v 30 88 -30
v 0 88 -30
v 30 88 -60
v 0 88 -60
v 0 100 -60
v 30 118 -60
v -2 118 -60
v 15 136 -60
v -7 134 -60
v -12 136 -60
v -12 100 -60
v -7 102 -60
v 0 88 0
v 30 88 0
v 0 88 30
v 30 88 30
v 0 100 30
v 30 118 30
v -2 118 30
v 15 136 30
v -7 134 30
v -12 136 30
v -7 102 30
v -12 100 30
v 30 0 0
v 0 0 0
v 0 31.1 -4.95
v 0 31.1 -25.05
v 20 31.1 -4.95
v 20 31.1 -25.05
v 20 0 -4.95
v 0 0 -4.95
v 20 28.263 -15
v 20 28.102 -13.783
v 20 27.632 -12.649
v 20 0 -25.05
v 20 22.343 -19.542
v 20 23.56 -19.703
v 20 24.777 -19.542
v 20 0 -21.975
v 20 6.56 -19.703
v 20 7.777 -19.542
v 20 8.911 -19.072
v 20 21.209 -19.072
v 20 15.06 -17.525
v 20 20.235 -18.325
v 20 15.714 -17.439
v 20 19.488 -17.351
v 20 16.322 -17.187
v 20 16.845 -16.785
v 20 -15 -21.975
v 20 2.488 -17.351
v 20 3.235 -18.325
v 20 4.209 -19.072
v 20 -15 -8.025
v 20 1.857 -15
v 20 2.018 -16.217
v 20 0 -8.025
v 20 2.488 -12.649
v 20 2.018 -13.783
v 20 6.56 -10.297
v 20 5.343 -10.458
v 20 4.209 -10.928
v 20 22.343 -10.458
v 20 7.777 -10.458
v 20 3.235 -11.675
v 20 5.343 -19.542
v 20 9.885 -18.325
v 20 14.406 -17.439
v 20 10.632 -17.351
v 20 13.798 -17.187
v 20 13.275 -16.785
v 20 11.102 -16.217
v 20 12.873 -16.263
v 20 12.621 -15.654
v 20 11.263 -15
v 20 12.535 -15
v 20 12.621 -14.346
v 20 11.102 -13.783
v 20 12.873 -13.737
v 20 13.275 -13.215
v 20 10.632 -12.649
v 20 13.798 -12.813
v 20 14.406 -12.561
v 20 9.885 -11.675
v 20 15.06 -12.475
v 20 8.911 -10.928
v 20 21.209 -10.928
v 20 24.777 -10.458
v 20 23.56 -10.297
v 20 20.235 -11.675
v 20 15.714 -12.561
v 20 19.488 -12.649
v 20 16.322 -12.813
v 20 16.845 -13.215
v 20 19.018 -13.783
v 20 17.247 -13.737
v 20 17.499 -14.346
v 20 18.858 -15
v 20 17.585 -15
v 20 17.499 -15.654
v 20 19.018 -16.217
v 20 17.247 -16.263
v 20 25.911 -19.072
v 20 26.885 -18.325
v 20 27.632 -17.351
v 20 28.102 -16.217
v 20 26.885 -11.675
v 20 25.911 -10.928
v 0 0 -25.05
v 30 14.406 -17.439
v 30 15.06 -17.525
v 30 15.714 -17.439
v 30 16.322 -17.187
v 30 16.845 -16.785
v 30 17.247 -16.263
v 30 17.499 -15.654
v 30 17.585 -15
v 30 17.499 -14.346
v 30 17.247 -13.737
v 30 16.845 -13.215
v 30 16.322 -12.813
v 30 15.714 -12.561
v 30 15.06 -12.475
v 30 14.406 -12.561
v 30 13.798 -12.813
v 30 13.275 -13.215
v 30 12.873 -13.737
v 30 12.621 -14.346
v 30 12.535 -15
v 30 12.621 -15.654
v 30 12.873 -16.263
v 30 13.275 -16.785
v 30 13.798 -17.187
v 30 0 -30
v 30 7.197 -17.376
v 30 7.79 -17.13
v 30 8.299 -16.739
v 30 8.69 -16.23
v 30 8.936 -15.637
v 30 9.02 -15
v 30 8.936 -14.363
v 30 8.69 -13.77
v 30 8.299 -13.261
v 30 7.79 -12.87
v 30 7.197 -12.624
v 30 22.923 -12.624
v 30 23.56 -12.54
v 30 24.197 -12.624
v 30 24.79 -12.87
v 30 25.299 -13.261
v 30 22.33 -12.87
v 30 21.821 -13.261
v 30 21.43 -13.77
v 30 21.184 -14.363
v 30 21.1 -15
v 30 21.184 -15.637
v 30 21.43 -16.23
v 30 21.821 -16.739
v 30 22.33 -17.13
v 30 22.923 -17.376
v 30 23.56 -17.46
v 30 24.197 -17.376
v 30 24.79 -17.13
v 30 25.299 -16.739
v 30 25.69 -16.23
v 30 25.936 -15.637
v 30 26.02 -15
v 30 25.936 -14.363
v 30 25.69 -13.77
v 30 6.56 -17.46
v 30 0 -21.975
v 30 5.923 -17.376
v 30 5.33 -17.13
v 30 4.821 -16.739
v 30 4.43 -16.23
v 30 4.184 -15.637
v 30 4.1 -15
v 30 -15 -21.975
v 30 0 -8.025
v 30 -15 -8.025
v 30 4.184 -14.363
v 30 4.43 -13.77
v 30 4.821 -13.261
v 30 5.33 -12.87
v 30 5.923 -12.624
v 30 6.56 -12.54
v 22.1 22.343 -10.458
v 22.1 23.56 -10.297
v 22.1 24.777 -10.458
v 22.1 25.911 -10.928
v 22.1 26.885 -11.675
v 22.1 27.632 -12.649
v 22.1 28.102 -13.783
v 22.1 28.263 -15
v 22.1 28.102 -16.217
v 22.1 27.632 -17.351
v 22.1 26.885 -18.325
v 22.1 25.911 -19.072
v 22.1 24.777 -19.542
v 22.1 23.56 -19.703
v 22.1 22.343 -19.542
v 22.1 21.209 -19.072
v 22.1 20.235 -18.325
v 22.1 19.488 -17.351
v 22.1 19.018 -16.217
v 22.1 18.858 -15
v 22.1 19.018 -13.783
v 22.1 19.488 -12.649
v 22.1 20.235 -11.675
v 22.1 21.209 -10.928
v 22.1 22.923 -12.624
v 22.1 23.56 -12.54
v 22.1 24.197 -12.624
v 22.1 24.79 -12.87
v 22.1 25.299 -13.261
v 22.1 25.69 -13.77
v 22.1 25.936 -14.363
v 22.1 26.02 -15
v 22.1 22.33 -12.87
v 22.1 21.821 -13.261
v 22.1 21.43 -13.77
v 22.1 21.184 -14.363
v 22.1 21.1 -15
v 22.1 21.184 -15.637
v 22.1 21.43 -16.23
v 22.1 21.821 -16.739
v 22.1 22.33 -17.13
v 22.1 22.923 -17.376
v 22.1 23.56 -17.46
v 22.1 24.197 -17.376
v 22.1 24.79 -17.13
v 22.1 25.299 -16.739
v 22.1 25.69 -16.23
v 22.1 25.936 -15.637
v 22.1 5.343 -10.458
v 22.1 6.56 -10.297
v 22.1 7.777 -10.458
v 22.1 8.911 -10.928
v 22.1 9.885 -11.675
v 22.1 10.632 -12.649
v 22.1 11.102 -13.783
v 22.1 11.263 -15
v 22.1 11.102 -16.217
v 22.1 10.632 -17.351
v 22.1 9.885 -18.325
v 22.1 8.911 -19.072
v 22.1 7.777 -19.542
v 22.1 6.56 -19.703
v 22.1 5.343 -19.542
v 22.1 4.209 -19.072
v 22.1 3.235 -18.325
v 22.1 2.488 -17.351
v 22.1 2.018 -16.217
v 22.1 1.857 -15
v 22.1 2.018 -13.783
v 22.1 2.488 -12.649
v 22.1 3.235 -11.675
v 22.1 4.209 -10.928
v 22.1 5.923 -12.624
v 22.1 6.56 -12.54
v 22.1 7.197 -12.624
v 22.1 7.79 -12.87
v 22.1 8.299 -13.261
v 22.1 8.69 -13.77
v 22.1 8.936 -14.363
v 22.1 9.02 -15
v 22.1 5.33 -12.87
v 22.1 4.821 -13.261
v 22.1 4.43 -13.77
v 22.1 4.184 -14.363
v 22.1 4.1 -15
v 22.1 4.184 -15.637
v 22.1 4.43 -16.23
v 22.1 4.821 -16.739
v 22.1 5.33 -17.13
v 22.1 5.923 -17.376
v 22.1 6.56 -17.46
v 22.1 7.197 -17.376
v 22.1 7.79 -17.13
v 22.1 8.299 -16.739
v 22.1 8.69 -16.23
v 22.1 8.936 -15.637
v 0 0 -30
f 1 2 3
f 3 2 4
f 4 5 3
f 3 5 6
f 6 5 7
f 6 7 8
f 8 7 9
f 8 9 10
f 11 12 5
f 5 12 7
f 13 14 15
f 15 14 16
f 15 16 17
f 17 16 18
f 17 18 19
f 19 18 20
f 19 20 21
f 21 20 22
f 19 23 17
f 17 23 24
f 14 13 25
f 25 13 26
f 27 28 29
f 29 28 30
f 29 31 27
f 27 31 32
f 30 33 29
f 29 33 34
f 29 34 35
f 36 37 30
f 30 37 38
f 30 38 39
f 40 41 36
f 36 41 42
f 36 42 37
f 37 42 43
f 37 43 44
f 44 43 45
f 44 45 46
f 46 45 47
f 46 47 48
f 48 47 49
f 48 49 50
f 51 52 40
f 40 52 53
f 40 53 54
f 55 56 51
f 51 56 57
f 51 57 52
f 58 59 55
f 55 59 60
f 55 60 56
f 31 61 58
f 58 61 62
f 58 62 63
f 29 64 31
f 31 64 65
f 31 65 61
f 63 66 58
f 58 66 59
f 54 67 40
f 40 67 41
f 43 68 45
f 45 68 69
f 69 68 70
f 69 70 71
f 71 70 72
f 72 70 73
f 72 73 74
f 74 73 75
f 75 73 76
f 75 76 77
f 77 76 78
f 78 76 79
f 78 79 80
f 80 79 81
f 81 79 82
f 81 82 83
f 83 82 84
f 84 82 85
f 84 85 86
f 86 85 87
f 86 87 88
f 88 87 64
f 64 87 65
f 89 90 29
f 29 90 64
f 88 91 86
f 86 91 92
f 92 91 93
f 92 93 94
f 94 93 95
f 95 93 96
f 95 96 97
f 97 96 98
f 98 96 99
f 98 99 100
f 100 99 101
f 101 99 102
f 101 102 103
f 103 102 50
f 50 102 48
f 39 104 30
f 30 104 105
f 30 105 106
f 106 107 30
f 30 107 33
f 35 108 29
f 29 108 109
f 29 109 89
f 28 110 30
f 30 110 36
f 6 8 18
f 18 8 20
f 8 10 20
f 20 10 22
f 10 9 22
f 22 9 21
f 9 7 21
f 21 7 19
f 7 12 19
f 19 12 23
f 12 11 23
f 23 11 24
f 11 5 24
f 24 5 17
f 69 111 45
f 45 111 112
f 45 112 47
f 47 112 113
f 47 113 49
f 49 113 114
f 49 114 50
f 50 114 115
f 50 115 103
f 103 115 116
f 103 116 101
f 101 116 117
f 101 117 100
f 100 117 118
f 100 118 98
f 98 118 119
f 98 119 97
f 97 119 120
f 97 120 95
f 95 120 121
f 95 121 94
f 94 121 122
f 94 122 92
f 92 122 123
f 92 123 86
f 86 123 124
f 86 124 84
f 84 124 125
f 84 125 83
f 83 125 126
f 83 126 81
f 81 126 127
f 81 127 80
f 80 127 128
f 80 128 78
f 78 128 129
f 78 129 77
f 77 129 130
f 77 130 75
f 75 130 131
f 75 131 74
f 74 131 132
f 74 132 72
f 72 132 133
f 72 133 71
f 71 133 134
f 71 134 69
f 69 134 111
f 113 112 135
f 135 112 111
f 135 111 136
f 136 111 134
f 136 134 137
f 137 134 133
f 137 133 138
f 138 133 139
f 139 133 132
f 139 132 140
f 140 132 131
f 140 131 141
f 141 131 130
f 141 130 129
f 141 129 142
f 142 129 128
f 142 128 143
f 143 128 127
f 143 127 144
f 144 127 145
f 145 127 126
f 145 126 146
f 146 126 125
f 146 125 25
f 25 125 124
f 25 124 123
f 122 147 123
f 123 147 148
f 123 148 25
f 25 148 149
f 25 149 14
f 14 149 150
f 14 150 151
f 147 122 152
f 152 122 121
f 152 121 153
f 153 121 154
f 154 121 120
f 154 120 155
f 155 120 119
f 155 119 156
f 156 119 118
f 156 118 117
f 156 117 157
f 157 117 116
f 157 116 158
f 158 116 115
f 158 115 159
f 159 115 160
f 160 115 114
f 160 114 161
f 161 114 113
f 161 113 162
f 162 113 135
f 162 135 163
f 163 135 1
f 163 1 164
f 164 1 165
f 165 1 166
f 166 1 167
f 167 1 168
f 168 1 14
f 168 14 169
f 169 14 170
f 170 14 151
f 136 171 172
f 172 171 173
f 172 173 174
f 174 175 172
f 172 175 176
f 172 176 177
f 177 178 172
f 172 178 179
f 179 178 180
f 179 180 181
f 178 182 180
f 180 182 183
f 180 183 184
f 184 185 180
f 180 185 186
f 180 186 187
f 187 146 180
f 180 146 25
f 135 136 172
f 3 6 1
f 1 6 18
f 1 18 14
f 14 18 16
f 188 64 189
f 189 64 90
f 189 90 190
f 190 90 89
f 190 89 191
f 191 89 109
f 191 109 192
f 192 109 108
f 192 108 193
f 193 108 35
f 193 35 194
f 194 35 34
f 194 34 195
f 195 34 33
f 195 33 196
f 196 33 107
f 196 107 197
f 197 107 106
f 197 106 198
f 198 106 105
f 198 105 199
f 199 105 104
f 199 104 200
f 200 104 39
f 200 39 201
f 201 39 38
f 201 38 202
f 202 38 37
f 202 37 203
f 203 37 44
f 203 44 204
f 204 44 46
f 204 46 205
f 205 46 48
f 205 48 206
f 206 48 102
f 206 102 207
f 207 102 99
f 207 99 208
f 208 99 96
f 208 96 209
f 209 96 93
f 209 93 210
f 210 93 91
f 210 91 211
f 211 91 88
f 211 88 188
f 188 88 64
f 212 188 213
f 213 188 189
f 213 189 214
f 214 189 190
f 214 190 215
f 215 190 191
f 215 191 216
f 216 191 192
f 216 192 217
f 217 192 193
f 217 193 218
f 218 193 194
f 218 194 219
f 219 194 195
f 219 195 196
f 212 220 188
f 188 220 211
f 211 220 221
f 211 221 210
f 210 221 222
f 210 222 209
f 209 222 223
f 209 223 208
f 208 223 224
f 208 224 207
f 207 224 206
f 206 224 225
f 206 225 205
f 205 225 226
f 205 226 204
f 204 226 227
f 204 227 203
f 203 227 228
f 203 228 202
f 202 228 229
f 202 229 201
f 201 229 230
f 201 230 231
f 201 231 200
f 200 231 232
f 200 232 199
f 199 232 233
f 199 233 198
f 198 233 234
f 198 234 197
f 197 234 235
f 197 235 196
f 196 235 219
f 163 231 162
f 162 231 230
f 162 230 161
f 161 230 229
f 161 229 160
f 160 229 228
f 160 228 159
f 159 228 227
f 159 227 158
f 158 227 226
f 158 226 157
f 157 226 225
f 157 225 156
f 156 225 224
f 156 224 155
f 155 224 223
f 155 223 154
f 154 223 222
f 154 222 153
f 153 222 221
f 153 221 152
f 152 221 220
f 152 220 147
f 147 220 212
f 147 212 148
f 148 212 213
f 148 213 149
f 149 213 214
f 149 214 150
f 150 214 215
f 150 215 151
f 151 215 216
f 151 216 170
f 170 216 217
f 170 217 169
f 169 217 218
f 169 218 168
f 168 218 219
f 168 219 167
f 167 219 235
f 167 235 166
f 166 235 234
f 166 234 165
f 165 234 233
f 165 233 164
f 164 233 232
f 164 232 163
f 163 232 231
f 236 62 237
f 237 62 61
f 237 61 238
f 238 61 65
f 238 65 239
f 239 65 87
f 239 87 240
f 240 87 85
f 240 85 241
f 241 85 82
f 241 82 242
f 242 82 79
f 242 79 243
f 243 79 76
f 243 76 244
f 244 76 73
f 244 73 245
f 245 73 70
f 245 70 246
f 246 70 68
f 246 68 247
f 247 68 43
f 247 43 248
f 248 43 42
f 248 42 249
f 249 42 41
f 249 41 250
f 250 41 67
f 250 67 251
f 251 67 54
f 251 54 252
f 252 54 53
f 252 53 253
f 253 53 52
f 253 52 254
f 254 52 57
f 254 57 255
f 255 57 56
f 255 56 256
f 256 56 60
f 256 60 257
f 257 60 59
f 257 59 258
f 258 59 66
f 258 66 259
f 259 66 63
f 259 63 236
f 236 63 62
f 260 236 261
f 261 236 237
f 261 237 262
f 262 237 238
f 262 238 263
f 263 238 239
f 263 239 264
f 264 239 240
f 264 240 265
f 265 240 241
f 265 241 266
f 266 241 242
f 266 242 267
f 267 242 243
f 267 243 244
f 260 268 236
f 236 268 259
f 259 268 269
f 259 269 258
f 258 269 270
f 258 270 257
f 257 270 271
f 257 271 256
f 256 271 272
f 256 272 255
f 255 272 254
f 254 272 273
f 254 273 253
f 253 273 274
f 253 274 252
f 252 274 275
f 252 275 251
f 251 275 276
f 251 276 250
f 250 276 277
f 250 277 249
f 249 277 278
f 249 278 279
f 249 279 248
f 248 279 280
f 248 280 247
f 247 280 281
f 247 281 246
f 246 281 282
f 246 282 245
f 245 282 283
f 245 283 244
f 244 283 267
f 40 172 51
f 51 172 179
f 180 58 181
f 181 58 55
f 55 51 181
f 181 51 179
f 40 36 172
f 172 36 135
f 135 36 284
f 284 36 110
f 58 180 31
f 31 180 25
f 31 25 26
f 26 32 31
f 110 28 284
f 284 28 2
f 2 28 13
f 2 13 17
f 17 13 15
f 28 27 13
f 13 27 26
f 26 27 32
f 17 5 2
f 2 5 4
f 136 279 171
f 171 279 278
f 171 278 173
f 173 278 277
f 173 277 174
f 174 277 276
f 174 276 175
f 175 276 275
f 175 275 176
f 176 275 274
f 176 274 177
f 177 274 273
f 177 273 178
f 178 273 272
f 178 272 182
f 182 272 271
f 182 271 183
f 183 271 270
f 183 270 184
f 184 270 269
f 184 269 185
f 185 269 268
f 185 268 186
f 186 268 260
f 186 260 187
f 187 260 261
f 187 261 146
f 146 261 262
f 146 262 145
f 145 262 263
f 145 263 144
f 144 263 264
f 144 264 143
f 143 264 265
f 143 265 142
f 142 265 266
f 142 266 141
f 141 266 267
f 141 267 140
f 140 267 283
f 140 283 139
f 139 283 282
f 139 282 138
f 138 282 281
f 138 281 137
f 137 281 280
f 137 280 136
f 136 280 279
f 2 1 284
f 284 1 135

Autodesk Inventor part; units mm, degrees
ref_plane "YZ Plane" through (0, 0, 0) normal (1, 0, 0) x (0, 1, 0)
ref_plane "XZ Plane" through (0, 0, 0) normal (0, 1, 0) x (-1, 0, 0)
sketch "Sketch1" plane through (0, 0, 0) normal (0, 0, 1) x (1, 0, 0)
  line L0 (0, 0) -> (25, 0)
  line L1 (25, 0) -> (25, 40)
  line L2 (25, 40) -> (0, 40)
  line L3 (0, 40) -> (0, 0)
  dimension "d1" = 25
  dimension "d2" = 40
  dimension "d3" = 25
extrude "Extrusion1" add sketch "Sketch1" against normal blind 30
sketch "Sketch2" plane through (25, 0, 0) normal (1, 0, 0) x (0, 0, -1)
  line L0 (0, 0) -> (30, 0) projected
  circle A0 centre (15, 6.56) radius 2.46
extrude "Extrusion2" cut sketch "Sketch2" against normal blind 30
sketch "Sketch3" plane through (0, 0, 0) normal (-1, 0, 0) x (0, 0, 1)
  line L0 (0, 0) -> (-30, 0) projected
  line L1 (-25.05, 0) -> (-4.95, 0)
  line L2 (-4.95, 0) -> (-4.95, 33.12)
  line L3 (-4.95, 33.12) -> (-25.05, 33.12)
  line L4 (-25.05, 33.12) -> (-25.05, 0)
  dimension "d11" = 20.1
extrude "Extrusion3" cut sketch "Sketch3" against normal blind 20
sketch "Sketch4" plane through (0, 0, 0) normal (0, -1, 0) x (1, 0, 0)
  line L0 (20, -4.95) -> (20, -25.05) projected
  line L1 (20, -15) -> (25, -15)
  line L2 (25, 0) -> (25, -30) projected
  line L3 (20, -8.025) -> (25, -8.025)
  line L4 (25, -8.025) -> (25, -21.975)
  line L5 (25, -21.975) -> (20, -21.975)
  line L6 (20, -21.975) -> (20, -8.025)
  line L7 (20, -8.025) -> (25, -21.975) construction
  line L8 (25, -8.025) -> (20, -21.975) construction
  line L9 (25, -12.54) -> (25, -17.46) projected
  point P0 (0, 0)
  point P1 (22.5, -15)
  dimension "d14" = 13.95
extrude "Extrusion4" add sketch "Sketch4" along normal blind 15
sketch "Sketch5" plane through (20, 0, 0) normal (-1, 0, 0) x (0, 0, 1)
  circle A0 centre (-15, 6.56) radius 2.46 projected
  circle A1 centre (-15, 6.56) radius 4.7025
  circle A2 centre (-15, 6.56) radius 2.46 projected
  circle A3 centre (-15, 6.56) radius 2.46
  point P0 (0, 0)
  dimension "d17" = 9.405
extrude "Extrusion5" cut sketch "Sketch5" against normal blind 2.1
sketch "Sketch6" plane through (25, 0, 0) normal (1, 0, 0) x (0, 0, -1)
  circle A0 centre (15, 6.56) radius 4.7025 projected
  line L0 (15, 6.56) -> (15, 23.56)
  circle A1 centre (15, 23.56) radius 2.46
  point P0 (0, 0)
  dimension "d20" = 17
  dimension "d21" = 4.92
extrude "Extrusion6" cut sketch "Sketch6" against normal blind 10 contours A1
sketch "Sketch7" plane through (20, 0, 0) normal (-1, 0, 0) x (0, 0, 1)
  circle A0 centre (-15, 23.56) radius 2.46 projected
  circle A1 centre (-15, 23.56) radius 4.7025
  point P0 (0, 0)
  dimension "d24" = 9.405
extrude "Extrusion7" cut sketch "Sketch7" against normal blind 2.1
sketch "Sketch9" plane through (25, 0, 0) normal (1, 0, 0) x (0, 0, -1)
  circle A0 centre (15, 6.56) radius 2.46 projected
  circle A1 centre (15, 6.56) radius 2.46
  circle A2 centre (15, 23.56) radius 2.46 projected
  circle A3 centre (15, 23.56) radius 2.46
  line L0 (30, 40) -> (30, 0) projected
  line L1 (30, 0) -> (30, 40)
  line L2 (30, 40) -> (0, 40)
  line L3 (0, 40) -> (0, 0)
  line L4 (0, 0) -> (8.025, 0) projected
  line L5 (21.975, 0) -> (21.975, -15)
  line L6 (21.975, -15) -> (8.025, -15)
  line L7 (8.025, -15) -> (8.025, 0)
  line L8 (0, 0) -> (8.025, 0)
  line L9 (21.975, 0) -> (30, 0)
extrude "Extrusion8" add sketch "Sketch9" along normal blind 5
sketch "Sketch10" plane through (0, 40, 0) normal (0, 1, 0) x (1, 0, 0)
  line L0 (0, 30) -> (30, 30) projected
  line L1 (30, 0) -> (0, 0) projected
  line L2 (0, 30) -> (30, 30)
  line L3 (30, 30) -> (30, 0)
  line L4 (30, 0) -> (0, 0)
  line L5 (0, 0) -> (0, 30)
extrude "Extrusion9" add sketch "Sketch10" along normal blind 30
sketch "Sketch12" plane through (30, 0, 0) normal (1, 0, 0) x (0, 0, -1)
  circle A0 centre (15, 6.56) radius 2.46 projected
  line L0 (15, 6.56) -> (15, 15.06)
  circle A1 centre (15, 15.06) radius 2.525
  point P0 (0, 0)
  dimension "d31" = 8.5
  dimension "d33" = 5.05
extrude "Extrusion10" cut sketch "Sketch12" against normal blind 30 contours A1
sketch "Sketch14" plane through (0, 0, 0) normal (0, 0, 1) x (1, 0, 0)
  line L0 (30, 70) -> (0, 70) projected
  line L1 (0, 70) -> (0, 85)
  line L2 (30, 0) -> (30, 70) projected
  line L3 (30, 118) -> (30, 70)
  line L4 (30, 105) -> (30, 100)
  line L5 (-7, 134) -> (-12, 136)
  line L6 (-7, 102) -> (-12, 100)
  line L7 (-7, 102) -> (-2, 118)
  line L8 (-2, 118) -> (-7, 134)
  line L9 (15, 136) -> (30, 118)
  line L10 (-12, 136) -> (15, 136)
  line L11 (0, 85) -> (0, 100)
  line L12 (0, 100) -> (-12, 100)
  point P0 (0, 0)
  dimension "d82" = 12
extrude "Extrusion12" add sketch "Sketch14" against normal blind 30
sketch "Sketch15" plane through (0, 0, -25.05) normal (-1, 0, 0) x (0, 0, 1)
  line L0 (0, 33.12) -> (20.1, 33.12) projected
  line L1 (20.1, 33.12) -> (20.1, 0) projected
  line L2 (0, 33.12) -> (20.1, 33.12)
  line L3 (20.1, 33.12) -> (20.1, 31.1)
  line L4 (20.1, 31.1) -> (0, 31.1)
  line L5 (0, 31.1) -> (0, 33.12)
  point P0 (25.05, 0)
  dimension "d57" = 2.02
extrude "Extrusion13" add sketch "Sketch15" against normal blind 20
sketch "Sketch23" plane through (0, 0, 0) normal (0, 0, 1) x (1, 0, 0)
  line L0 (0, 100) -> (-12, 100) projected
  line L1 (0, 100) -> (-12, 100)
  line L2 (-12, 100) -> (-7, 102) projected
  line L3 (-12, 100) -> (-7, 102)
  line L4 (-7, 102) -> (-2, 118) projected
  line L5 (-7, 102) -> (-2, 118)
  line L6 (-2, 118) -> (-7, 134) projected
  line L7 (-2, 118) -> (-7, 134)
  line L8 (-12, 136) -> (15, 136) projected
  line L9 (-7, 134) -> (-12, 136)
  line L10 (-12, 136) -> (15, 136)
  line L11 (15, 136) -> (30, 118) projected
  line L12 (15, 136) -> (30, 118)
  line L13 (30, 118) -> (30, 88)
  line L14 (30, 0) -> (30, 118) projected
  line L15 (30, 88) -> (0, 88)
  line L16 (0, 88) -> (0, 100)
  point P0 (0, 0)
  dimension "d83" = 30
  dimension "d84" = 30
extrude "Extrusion14" add sketch "Sketch23" along normal blind 30
ref_plane "Work Plane1" through (0, 0, -15) normal (0, 0, 1) x (1, 0, 0)
mirror "Mirror1" about plane through (0, 0, -15) normal (0, 0, 1) of "Extrusion14"
properties part number "rec_b_32mm_x_90mm"
